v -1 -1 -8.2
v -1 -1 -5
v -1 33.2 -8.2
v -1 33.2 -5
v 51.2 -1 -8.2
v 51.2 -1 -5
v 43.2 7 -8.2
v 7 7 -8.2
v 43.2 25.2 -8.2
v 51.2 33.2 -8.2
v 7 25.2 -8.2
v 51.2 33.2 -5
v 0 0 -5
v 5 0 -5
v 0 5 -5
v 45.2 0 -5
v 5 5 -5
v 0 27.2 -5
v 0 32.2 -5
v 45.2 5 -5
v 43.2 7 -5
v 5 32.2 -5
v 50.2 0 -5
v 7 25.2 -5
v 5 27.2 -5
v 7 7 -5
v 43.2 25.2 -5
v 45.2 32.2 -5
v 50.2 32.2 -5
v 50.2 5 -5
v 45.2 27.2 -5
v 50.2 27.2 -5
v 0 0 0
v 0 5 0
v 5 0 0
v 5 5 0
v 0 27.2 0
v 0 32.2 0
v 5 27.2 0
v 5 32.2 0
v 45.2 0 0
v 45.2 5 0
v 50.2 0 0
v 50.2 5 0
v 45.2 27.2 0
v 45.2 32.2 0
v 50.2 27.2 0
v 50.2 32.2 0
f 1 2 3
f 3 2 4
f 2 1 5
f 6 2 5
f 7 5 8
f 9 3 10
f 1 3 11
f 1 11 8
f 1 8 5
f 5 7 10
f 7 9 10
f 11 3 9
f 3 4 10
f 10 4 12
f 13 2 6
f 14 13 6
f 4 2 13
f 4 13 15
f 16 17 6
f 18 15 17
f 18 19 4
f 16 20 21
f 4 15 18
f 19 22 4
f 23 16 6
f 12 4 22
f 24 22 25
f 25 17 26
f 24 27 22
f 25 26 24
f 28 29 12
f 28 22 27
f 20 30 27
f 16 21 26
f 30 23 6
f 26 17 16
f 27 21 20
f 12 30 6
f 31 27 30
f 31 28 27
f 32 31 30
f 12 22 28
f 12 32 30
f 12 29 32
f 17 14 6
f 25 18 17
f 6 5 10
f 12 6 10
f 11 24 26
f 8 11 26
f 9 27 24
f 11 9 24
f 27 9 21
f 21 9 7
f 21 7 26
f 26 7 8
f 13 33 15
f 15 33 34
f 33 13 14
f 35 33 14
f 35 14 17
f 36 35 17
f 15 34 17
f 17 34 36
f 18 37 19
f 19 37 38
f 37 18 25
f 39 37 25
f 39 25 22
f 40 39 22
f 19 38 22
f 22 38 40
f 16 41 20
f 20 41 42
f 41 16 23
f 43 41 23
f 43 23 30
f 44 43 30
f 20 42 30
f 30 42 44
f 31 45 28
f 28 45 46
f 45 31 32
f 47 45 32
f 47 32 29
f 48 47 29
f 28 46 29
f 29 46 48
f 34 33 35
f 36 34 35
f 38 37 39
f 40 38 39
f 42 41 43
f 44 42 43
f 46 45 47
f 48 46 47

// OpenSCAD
// PCB dimensions
pcb_length = 50.20;
pcb_width  = 32.20;
pcb_height = 1.20;



// Mockup of our PCB to make things easy to model
module pcbmockup() {
	difference() {
		// PCB board
		color("green")
		cube([pcb_length,
			pcb_width,
			pcb_height],
			false);

		// Top left hole stamp
		translate([2.30, 2.30, 0])
		cylinder(h = 3, d = 3);
		// Top right hole stamp
		translate([2.30, 30.10])
		cylinder(h = 3, d = 3);
		// Bottom left hole stamp
		translate([48.20, 2.20])
		cylinder(h = 3, d = 3);
		// Bottom right hole stamp
		translate([48.20, 30.20])
		cylinder(h = 3, d = 3);
	}
}

module bracket() {
	brkt_padding = 2;
	brkt_mounts  = 5;

	brkt_length = brkt_padding + pcb_length;
	brkt_width  = brkt_padding + pcb_width;
	brkt_height = brkt_padding + pcb_height;

	difference() {
		translate([-(brkt_padding / 2),
			-(brkt_padding / 2),
			-(brkt_padding + pcb_height)-brkt_mounts])
		cube([brkt_length, brkt_width, brkt_height],
			false);

		translate([brkt_mounts + brkt_padding,
			brkt_mounts + brkt_padding,
			-10])
		color("blue")
		cube([(brkt_length - 16),
			(brkt_width - 16),
			10], false);
	}

	// Top left screw mount
	translate([0, 0, -(brkt_mounts)])
		cube(size = brkt_mounts);

	// Top right screw mount
	translate([0, (pcb_width - brkt_mounts), -(brkt_mounts)])
		cube(size = brkt_mounts);

	// Bottom left screw mount
	translate([(pcb_length - brkt_mounts), 0, -(brkt_mounts)])
		cube(size = brkt_mounts);

	// Bottom right screw mount
	translate([(pcb_length - brkt_mounts), (pcb_width - brkt_mounts), -(brkt_mounts)])
		cube(size = brkt_mounts);
}

// Corner-rounder module..
module fillet(r, h) {
	translate([r / 2, r / 2, 0])
	difference() {
		cube([r + 0.01, r + 0.01, h], center = true);
		translate([r/2, r/2, 0])
		cylinder(r = r, h = h + 1, center = true);
	}
}

//pcbmockup();
bracket();
